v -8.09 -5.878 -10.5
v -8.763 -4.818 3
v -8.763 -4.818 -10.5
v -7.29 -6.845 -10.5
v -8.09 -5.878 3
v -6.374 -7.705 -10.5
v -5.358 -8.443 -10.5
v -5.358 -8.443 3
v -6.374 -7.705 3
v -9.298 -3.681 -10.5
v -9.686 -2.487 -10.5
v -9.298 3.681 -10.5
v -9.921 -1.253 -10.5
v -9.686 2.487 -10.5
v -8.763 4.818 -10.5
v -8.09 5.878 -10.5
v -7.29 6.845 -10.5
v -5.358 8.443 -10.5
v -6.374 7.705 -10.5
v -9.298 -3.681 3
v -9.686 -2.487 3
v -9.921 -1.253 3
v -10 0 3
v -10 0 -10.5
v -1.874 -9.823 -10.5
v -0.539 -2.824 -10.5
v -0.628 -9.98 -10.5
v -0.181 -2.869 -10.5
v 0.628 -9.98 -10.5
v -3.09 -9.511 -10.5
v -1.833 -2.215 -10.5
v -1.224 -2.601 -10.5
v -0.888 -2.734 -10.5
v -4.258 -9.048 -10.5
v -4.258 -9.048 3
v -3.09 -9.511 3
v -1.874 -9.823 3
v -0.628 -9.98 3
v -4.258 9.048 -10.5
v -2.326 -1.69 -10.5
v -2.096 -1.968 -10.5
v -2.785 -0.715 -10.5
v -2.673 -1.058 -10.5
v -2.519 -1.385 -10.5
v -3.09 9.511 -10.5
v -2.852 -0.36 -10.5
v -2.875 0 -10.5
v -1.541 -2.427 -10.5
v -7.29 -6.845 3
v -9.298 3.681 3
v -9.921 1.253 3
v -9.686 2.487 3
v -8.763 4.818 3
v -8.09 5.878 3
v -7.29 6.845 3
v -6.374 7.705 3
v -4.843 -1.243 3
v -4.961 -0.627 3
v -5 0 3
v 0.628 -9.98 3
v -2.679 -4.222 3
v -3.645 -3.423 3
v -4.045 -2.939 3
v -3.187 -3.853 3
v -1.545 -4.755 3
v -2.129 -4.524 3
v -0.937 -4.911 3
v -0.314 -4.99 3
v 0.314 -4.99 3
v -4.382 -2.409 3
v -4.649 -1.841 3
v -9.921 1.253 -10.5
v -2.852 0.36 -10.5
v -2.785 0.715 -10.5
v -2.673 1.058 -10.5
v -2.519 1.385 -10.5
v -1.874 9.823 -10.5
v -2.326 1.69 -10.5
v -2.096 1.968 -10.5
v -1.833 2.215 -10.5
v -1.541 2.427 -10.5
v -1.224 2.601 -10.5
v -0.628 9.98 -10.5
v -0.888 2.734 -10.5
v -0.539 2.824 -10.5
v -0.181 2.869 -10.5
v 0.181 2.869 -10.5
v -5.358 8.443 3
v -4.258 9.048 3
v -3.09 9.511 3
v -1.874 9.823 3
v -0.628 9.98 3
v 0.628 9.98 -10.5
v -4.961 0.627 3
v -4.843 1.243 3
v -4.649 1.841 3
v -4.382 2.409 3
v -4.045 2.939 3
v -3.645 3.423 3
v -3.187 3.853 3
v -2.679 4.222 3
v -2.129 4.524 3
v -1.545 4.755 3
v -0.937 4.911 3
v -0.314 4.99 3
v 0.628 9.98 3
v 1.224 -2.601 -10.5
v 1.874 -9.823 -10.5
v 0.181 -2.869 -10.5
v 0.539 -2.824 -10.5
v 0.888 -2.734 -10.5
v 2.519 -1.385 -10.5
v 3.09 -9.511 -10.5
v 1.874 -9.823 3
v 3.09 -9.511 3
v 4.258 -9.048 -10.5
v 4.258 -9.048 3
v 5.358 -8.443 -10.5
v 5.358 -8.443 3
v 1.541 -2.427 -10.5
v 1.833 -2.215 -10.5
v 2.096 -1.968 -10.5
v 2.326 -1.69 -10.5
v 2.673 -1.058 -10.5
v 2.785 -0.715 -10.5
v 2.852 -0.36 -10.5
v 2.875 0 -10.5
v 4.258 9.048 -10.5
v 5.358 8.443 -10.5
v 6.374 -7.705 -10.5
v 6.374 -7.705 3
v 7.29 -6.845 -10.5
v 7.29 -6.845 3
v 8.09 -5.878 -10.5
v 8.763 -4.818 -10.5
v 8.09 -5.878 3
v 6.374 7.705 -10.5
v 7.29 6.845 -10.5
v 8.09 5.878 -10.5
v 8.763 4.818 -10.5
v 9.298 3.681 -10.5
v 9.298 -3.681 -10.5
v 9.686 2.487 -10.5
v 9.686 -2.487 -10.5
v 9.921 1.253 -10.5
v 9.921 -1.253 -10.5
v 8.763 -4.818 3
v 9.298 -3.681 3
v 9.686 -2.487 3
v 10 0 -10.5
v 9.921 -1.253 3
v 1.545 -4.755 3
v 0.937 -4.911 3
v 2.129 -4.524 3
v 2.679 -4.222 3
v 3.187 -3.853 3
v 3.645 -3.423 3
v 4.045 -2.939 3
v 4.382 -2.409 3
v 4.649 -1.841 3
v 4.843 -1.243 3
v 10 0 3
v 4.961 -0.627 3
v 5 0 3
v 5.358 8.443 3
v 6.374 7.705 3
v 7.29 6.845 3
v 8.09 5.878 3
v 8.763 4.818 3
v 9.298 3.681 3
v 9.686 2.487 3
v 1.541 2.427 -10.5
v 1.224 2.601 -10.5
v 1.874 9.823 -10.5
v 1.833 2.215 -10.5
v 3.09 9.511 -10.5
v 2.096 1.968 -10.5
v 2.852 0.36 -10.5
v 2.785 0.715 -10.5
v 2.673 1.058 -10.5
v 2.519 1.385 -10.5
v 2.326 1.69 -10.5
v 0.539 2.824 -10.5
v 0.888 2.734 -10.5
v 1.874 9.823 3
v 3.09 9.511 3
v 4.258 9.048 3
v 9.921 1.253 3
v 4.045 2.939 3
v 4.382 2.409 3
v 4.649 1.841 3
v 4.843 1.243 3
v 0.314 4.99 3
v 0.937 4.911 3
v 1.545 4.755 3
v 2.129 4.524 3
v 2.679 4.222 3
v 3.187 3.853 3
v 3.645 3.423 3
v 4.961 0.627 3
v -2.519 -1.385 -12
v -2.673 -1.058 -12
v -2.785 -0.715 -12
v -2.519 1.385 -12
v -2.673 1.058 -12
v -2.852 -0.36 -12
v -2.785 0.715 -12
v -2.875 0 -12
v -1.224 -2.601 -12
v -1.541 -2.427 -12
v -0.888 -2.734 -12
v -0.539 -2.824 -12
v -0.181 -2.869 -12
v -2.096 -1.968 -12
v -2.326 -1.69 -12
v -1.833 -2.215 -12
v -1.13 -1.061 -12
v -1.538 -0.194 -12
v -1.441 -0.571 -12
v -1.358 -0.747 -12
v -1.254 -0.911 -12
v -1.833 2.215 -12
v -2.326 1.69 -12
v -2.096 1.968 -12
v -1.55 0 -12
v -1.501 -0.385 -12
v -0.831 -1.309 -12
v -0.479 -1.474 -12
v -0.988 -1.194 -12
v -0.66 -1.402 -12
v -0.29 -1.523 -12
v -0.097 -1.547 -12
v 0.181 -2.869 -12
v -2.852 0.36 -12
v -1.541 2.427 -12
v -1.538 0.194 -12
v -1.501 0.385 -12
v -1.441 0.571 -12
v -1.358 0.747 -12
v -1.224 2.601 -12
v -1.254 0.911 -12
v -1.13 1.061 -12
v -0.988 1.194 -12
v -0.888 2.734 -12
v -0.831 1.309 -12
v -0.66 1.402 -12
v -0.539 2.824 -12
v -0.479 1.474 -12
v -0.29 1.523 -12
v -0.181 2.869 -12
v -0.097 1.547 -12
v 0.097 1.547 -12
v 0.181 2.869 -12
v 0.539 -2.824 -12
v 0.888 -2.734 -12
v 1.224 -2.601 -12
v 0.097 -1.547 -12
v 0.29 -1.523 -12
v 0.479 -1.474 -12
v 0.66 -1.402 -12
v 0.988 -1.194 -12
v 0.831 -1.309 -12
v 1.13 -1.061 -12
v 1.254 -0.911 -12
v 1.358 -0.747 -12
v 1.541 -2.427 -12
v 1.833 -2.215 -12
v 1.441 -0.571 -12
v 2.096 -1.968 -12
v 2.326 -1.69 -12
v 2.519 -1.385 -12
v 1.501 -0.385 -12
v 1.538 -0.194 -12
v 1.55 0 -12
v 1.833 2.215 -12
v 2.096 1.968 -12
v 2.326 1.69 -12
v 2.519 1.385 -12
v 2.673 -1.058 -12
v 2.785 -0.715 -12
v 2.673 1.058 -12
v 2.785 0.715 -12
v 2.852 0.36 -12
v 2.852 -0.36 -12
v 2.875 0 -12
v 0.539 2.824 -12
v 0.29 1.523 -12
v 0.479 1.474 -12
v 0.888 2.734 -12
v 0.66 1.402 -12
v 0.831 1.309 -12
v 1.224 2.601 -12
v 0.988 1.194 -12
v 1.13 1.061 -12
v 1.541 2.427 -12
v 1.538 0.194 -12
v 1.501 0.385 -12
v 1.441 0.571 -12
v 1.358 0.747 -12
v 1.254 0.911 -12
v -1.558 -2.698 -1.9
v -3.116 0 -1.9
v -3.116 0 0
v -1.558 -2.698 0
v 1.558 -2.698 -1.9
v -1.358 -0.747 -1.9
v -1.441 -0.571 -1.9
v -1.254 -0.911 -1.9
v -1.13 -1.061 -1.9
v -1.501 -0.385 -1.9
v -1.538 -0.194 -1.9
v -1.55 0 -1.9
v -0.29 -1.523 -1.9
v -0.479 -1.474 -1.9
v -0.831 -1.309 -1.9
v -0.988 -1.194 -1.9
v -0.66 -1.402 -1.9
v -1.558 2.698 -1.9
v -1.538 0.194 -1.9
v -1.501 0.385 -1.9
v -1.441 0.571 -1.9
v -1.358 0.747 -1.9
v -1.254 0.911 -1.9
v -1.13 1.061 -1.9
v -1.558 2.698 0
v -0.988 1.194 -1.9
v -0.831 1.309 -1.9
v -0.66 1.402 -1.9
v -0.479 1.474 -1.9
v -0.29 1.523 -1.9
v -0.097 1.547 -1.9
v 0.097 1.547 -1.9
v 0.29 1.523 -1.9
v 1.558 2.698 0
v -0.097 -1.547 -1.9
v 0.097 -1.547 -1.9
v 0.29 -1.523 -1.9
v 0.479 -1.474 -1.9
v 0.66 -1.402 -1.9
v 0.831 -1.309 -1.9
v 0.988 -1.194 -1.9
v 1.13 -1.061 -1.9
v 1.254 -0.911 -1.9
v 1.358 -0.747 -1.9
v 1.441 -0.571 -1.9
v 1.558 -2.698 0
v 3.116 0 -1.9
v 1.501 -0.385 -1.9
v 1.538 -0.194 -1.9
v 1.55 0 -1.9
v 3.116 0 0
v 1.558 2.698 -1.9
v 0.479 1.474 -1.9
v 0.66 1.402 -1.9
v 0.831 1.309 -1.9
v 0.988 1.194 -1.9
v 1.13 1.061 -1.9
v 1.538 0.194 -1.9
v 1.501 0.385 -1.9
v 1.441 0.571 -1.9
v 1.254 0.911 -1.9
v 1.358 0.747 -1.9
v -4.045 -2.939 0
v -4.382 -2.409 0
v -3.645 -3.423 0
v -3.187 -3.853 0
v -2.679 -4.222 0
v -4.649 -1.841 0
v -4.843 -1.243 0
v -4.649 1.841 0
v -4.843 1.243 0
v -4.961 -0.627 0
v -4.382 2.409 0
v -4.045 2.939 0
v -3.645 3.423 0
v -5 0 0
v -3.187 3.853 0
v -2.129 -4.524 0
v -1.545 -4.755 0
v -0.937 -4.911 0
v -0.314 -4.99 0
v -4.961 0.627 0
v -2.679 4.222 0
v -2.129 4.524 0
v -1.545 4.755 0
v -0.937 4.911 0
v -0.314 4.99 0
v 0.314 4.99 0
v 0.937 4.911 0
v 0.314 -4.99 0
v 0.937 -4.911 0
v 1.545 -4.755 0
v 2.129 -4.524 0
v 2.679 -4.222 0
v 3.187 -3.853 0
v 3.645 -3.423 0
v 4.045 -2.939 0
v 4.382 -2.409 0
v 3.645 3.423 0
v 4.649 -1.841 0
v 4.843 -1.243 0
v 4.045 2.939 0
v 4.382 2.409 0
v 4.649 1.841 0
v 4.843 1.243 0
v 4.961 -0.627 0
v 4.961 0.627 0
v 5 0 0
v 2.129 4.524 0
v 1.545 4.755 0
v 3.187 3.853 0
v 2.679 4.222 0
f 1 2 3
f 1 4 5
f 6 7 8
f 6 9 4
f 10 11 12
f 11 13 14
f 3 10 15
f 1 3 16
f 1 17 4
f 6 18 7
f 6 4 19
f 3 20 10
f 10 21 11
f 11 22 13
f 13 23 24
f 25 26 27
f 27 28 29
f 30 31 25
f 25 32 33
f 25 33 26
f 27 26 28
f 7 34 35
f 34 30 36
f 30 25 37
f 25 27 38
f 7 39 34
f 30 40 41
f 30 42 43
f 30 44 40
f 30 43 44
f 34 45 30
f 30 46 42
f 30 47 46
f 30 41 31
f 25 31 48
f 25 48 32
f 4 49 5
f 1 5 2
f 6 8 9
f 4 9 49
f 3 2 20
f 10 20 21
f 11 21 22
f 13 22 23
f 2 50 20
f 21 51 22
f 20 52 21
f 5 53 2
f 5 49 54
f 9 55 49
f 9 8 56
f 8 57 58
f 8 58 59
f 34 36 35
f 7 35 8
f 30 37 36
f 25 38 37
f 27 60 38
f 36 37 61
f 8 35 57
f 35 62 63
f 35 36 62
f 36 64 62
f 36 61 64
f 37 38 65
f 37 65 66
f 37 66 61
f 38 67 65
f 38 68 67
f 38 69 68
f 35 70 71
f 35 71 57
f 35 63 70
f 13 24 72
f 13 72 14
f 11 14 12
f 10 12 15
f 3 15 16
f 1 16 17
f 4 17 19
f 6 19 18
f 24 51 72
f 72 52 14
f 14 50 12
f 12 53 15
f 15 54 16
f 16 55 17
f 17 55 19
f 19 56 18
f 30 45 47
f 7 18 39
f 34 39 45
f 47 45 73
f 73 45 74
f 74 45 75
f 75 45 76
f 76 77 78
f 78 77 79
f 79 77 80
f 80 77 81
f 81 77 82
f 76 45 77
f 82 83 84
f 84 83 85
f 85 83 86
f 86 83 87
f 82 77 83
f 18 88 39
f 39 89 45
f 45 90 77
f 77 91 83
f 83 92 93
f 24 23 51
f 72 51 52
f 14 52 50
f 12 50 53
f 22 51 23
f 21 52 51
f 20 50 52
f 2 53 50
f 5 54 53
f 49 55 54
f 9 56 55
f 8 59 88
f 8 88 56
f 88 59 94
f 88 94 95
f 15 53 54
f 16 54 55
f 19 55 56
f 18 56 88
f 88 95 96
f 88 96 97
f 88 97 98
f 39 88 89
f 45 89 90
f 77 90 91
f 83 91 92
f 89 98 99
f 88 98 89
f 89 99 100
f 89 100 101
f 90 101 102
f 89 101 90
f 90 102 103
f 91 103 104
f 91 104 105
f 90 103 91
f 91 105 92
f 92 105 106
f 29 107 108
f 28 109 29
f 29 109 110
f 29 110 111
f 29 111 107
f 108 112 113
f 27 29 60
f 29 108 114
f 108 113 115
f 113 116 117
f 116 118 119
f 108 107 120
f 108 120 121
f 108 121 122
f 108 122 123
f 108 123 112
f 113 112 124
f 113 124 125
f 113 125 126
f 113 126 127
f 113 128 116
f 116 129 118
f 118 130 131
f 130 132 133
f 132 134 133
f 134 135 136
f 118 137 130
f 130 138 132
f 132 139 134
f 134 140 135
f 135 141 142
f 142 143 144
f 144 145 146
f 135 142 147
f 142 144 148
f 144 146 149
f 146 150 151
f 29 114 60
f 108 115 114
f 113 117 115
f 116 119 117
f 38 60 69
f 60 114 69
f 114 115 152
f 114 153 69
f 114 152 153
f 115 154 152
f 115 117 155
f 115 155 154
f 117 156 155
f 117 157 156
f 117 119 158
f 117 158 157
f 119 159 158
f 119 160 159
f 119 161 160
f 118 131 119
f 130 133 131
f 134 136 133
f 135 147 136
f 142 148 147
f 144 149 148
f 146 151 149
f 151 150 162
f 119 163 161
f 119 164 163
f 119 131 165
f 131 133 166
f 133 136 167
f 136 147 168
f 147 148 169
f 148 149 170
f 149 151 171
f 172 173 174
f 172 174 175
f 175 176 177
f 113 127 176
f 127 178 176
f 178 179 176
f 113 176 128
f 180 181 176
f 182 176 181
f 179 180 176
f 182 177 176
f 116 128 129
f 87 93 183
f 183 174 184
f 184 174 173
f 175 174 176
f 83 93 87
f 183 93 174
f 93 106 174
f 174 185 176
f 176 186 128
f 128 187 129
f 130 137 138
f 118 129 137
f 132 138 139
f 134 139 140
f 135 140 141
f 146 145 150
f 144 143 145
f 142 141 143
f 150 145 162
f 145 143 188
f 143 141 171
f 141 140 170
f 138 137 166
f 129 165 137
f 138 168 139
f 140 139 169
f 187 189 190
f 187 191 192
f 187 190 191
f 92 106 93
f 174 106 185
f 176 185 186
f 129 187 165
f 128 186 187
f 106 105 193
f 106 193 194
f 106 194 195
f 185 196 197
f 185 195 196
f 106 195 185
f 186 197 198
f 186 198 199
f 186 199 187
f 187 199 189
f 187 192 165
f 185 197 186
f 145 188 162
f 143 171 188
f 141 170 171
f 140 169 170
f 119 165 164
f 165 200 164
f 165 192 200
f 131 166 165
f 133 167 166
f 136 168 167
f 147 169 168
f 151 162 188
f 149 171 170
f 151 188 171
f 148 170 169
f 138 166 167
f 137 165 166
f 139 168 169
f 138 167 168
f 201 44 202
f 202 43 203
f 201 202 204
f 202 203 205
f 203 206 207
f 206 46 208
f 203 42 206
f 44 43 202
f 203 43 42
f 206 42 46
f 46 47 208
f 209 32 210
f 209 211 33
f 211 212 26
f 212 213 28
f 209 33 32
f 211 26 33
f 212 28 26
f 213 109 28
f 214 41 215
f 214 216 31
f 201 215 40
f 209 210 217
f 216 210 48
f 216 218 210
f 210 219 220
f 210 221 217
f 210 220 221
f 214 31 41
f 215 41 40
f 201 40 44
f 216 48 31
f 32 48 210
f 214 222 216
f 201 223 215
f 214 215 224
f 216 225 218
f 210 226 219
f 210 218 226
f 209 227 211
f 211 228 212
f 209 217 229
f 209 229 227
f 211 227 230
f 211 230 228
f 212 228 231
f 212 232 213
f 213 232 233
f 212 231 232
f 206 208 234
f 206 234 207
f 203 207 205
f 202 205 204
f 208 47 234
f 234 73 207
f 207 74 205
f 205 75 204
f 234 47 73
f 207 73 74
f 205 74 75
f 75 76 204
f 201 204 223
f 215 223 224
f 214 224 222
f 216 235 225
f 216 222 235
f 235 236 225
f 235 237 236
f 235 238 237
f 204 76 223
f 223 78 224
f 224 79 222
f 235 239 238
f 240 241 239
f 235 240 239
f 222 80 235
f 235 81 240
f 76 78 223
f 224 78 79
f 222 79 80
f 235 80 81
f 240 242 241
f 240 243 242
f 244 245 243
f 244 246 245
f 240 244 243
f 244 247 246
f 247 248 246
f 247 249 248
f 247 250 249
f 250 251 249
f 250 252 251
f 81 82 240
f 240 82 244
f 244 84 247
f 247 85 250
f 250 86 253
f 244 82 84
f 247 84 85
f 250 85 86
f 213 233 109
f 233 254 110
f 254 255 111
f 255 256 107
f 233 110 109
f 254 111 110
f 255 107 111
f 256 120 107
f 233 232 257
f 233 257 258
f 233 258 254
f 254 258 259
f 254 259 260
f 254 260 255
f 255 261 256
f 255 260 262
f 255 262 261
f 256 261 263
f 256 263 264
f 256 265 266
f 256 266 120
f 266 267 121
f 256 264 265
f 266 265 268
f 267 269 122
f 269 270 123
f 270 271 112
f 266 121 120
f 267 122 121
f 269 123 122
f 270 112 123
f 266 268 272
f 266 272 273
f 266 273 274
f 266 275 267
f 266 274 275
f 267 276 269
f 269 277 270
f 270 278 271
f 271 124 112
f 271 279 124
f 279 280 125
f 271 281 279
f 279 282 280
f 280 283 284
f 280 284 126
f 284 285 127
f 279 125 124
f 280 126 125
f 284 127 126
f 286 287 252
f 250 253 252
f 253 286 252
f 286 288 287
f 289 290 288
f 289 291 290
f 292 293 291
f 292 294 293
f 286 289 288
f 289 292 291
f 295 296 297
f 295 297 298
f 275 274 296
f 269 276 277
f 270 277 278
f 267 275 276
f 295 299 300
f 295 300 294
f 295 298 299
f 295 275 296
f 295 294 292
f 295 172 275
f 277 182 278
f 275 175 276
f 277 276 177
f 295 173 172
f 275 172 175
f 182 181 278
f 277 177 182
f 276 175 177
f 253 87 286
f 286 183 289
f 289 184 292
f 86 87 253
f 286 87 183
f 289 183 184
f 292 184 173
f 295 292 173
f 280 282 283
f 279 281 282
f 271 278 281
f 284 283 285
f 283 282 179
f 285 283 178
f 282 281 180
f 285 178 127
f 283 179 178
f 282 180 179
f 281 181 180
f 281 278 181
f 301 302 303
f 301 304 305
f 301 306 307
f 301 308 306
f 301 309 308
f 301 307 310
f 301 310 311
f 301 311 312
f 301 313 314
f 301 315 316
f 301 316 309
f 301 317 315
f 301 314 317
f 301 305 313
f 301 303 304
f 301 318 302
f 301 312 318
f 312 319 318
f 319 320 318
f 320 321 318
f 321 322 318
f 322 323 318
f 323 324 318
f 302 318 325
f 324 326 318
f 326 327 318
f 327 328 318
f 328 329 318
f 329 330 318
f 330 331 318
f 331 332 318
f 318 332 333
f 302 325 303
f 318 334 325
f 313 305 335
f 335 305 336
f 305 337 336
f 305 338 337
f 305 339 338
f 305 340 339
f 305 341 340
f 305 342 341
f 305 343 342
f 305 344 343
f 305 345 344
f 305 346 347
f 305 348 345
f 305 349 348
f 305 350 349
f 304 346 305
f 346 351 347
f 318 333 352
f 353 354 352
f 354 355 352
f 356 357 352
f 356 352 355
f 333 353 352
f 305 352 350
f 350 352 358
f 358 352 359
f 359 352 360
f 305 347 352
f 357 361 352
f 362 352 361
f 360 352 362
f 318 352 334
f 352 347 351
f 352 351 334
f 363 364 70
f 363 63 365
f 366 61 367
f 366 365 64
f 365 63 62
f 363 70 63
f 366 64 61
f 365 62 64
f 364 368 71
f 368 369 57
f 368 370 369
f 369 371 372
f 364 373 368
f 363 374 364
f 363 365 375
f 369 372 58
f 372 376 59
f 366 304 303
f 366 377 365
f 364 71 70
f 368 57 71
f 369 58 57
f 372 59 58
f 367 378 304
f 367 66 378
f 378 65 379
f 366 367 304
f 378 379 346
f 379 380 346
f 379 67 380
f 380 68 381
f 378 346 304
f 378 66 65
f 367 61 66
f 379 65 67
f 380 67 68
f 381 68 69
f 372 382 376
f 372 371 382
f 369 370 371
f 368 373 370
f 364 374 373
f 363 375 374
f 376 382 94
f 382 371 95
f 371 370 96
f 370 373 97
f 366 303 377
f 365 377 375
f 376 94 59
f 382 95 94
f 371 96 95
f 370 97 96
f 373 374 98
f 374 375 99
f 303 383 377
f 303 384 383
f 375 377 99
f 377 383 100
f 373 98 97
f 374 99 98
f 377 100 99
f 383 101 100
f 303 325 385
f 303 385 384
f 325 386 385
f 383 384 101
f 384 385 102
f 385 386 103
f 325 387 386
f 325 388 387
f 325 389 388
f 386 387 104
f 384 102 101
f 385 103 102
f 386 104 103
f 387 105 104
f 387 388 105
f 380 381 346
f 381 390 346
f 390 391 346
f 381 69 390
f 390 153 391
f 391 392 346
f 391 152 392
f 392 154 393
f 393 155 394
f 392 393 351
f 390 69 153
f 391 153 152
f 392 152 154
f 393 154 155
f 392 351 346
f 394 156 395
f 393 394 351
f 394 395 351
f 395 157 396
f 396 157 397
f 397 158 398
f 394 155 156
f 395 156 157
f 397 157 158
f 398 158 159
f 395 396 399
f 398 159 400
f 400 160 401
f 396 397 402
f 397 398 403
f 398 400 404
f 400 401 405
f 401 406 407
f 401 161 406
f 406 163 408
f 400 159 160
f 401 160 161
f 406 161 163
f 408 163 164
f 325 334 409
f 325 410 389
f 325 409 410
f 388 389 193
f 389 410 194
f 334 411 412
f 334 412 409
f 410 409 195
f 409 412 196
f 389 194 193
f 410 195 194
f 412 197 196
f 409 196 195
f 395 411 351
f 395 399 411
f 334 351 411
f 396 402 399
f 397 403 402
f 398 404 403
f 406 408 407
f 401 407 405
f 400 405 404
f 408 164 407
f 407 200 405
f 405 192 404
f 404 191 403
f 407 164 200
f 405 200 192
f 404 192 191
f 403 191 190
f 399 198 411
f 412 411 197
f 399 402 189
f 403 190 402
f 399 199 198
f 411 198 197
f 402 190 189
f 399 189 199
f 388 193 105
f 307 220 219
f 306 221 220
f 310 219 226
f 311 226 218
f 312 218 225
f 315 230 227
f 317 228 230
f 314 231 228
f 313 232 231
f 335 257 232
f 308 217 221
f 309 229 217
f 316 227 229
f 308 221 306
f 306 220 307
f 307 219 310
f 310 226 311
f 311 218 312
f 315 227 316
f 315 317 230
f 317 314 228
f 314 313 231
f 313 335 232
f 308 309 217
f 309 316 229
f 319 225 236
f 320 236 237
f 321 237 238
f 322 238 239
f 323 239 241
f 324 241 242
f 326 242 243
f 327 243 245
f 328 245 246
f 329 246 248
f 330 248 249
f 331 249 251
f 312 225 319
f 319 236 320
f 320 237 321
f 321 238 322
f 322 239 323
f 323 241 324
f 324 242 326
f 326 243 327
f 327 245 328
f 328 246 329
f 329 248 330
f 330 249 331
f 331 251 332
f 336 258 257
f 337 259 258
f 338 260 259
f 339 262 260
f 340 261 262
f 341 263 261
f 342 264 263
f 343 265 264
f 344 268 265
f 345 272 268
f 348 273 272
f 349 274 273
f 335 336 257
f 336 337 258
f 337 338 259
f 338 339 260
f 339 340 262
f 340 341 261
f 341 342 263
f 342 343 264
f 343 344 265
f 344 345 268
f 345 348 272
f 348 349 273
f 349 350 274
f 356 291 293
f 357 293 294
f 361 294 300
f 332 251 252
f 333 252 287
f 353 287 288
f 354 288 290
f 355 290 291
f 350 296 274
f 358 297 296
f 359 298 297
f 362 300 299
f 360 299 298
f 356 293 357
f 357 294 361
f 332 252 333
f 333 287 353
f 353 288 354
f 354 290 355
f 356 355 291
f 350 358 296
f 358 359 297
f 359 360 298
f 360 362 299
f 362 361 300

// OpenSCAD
$fn = 50;

difference() {
	union() {
		translate(v = [0, 0, -10.5]) {
			cylinder(h = 13.5, r = 10.0);
		}
		#translate(v = [0, 0, -12.0]) {
			cylinder(h = 12, r = 2.875);
		}
	}
	union() {
		translate(v = [0, 0, 0]) {
			rotate(a = [0, 0, 0]) {
				difference() {
					union() {
						translate(v = [0, 0, -1.9]) {
							linear_extrude(height = 1.9) {
								polygon(points = [[3.1158, 0.0], [1.5579000000000005, 2.698361953111554], [-1.5578999999999994, 2.6983619531115544], [-3.1158, 3.815754496783323e-16], [-1.5579000000000014, -2.6983619531115535], [1.557899999999998, -2.6983619531115552]]);
							}
						}
					}
					union();
				}
			}
		}
		#cylinder(h = 3, r = 5.0);
		#translate(v = [0, 0, -100.0]) {
			cylinder(h = 200, r = 1.55);
		}
	}
}
